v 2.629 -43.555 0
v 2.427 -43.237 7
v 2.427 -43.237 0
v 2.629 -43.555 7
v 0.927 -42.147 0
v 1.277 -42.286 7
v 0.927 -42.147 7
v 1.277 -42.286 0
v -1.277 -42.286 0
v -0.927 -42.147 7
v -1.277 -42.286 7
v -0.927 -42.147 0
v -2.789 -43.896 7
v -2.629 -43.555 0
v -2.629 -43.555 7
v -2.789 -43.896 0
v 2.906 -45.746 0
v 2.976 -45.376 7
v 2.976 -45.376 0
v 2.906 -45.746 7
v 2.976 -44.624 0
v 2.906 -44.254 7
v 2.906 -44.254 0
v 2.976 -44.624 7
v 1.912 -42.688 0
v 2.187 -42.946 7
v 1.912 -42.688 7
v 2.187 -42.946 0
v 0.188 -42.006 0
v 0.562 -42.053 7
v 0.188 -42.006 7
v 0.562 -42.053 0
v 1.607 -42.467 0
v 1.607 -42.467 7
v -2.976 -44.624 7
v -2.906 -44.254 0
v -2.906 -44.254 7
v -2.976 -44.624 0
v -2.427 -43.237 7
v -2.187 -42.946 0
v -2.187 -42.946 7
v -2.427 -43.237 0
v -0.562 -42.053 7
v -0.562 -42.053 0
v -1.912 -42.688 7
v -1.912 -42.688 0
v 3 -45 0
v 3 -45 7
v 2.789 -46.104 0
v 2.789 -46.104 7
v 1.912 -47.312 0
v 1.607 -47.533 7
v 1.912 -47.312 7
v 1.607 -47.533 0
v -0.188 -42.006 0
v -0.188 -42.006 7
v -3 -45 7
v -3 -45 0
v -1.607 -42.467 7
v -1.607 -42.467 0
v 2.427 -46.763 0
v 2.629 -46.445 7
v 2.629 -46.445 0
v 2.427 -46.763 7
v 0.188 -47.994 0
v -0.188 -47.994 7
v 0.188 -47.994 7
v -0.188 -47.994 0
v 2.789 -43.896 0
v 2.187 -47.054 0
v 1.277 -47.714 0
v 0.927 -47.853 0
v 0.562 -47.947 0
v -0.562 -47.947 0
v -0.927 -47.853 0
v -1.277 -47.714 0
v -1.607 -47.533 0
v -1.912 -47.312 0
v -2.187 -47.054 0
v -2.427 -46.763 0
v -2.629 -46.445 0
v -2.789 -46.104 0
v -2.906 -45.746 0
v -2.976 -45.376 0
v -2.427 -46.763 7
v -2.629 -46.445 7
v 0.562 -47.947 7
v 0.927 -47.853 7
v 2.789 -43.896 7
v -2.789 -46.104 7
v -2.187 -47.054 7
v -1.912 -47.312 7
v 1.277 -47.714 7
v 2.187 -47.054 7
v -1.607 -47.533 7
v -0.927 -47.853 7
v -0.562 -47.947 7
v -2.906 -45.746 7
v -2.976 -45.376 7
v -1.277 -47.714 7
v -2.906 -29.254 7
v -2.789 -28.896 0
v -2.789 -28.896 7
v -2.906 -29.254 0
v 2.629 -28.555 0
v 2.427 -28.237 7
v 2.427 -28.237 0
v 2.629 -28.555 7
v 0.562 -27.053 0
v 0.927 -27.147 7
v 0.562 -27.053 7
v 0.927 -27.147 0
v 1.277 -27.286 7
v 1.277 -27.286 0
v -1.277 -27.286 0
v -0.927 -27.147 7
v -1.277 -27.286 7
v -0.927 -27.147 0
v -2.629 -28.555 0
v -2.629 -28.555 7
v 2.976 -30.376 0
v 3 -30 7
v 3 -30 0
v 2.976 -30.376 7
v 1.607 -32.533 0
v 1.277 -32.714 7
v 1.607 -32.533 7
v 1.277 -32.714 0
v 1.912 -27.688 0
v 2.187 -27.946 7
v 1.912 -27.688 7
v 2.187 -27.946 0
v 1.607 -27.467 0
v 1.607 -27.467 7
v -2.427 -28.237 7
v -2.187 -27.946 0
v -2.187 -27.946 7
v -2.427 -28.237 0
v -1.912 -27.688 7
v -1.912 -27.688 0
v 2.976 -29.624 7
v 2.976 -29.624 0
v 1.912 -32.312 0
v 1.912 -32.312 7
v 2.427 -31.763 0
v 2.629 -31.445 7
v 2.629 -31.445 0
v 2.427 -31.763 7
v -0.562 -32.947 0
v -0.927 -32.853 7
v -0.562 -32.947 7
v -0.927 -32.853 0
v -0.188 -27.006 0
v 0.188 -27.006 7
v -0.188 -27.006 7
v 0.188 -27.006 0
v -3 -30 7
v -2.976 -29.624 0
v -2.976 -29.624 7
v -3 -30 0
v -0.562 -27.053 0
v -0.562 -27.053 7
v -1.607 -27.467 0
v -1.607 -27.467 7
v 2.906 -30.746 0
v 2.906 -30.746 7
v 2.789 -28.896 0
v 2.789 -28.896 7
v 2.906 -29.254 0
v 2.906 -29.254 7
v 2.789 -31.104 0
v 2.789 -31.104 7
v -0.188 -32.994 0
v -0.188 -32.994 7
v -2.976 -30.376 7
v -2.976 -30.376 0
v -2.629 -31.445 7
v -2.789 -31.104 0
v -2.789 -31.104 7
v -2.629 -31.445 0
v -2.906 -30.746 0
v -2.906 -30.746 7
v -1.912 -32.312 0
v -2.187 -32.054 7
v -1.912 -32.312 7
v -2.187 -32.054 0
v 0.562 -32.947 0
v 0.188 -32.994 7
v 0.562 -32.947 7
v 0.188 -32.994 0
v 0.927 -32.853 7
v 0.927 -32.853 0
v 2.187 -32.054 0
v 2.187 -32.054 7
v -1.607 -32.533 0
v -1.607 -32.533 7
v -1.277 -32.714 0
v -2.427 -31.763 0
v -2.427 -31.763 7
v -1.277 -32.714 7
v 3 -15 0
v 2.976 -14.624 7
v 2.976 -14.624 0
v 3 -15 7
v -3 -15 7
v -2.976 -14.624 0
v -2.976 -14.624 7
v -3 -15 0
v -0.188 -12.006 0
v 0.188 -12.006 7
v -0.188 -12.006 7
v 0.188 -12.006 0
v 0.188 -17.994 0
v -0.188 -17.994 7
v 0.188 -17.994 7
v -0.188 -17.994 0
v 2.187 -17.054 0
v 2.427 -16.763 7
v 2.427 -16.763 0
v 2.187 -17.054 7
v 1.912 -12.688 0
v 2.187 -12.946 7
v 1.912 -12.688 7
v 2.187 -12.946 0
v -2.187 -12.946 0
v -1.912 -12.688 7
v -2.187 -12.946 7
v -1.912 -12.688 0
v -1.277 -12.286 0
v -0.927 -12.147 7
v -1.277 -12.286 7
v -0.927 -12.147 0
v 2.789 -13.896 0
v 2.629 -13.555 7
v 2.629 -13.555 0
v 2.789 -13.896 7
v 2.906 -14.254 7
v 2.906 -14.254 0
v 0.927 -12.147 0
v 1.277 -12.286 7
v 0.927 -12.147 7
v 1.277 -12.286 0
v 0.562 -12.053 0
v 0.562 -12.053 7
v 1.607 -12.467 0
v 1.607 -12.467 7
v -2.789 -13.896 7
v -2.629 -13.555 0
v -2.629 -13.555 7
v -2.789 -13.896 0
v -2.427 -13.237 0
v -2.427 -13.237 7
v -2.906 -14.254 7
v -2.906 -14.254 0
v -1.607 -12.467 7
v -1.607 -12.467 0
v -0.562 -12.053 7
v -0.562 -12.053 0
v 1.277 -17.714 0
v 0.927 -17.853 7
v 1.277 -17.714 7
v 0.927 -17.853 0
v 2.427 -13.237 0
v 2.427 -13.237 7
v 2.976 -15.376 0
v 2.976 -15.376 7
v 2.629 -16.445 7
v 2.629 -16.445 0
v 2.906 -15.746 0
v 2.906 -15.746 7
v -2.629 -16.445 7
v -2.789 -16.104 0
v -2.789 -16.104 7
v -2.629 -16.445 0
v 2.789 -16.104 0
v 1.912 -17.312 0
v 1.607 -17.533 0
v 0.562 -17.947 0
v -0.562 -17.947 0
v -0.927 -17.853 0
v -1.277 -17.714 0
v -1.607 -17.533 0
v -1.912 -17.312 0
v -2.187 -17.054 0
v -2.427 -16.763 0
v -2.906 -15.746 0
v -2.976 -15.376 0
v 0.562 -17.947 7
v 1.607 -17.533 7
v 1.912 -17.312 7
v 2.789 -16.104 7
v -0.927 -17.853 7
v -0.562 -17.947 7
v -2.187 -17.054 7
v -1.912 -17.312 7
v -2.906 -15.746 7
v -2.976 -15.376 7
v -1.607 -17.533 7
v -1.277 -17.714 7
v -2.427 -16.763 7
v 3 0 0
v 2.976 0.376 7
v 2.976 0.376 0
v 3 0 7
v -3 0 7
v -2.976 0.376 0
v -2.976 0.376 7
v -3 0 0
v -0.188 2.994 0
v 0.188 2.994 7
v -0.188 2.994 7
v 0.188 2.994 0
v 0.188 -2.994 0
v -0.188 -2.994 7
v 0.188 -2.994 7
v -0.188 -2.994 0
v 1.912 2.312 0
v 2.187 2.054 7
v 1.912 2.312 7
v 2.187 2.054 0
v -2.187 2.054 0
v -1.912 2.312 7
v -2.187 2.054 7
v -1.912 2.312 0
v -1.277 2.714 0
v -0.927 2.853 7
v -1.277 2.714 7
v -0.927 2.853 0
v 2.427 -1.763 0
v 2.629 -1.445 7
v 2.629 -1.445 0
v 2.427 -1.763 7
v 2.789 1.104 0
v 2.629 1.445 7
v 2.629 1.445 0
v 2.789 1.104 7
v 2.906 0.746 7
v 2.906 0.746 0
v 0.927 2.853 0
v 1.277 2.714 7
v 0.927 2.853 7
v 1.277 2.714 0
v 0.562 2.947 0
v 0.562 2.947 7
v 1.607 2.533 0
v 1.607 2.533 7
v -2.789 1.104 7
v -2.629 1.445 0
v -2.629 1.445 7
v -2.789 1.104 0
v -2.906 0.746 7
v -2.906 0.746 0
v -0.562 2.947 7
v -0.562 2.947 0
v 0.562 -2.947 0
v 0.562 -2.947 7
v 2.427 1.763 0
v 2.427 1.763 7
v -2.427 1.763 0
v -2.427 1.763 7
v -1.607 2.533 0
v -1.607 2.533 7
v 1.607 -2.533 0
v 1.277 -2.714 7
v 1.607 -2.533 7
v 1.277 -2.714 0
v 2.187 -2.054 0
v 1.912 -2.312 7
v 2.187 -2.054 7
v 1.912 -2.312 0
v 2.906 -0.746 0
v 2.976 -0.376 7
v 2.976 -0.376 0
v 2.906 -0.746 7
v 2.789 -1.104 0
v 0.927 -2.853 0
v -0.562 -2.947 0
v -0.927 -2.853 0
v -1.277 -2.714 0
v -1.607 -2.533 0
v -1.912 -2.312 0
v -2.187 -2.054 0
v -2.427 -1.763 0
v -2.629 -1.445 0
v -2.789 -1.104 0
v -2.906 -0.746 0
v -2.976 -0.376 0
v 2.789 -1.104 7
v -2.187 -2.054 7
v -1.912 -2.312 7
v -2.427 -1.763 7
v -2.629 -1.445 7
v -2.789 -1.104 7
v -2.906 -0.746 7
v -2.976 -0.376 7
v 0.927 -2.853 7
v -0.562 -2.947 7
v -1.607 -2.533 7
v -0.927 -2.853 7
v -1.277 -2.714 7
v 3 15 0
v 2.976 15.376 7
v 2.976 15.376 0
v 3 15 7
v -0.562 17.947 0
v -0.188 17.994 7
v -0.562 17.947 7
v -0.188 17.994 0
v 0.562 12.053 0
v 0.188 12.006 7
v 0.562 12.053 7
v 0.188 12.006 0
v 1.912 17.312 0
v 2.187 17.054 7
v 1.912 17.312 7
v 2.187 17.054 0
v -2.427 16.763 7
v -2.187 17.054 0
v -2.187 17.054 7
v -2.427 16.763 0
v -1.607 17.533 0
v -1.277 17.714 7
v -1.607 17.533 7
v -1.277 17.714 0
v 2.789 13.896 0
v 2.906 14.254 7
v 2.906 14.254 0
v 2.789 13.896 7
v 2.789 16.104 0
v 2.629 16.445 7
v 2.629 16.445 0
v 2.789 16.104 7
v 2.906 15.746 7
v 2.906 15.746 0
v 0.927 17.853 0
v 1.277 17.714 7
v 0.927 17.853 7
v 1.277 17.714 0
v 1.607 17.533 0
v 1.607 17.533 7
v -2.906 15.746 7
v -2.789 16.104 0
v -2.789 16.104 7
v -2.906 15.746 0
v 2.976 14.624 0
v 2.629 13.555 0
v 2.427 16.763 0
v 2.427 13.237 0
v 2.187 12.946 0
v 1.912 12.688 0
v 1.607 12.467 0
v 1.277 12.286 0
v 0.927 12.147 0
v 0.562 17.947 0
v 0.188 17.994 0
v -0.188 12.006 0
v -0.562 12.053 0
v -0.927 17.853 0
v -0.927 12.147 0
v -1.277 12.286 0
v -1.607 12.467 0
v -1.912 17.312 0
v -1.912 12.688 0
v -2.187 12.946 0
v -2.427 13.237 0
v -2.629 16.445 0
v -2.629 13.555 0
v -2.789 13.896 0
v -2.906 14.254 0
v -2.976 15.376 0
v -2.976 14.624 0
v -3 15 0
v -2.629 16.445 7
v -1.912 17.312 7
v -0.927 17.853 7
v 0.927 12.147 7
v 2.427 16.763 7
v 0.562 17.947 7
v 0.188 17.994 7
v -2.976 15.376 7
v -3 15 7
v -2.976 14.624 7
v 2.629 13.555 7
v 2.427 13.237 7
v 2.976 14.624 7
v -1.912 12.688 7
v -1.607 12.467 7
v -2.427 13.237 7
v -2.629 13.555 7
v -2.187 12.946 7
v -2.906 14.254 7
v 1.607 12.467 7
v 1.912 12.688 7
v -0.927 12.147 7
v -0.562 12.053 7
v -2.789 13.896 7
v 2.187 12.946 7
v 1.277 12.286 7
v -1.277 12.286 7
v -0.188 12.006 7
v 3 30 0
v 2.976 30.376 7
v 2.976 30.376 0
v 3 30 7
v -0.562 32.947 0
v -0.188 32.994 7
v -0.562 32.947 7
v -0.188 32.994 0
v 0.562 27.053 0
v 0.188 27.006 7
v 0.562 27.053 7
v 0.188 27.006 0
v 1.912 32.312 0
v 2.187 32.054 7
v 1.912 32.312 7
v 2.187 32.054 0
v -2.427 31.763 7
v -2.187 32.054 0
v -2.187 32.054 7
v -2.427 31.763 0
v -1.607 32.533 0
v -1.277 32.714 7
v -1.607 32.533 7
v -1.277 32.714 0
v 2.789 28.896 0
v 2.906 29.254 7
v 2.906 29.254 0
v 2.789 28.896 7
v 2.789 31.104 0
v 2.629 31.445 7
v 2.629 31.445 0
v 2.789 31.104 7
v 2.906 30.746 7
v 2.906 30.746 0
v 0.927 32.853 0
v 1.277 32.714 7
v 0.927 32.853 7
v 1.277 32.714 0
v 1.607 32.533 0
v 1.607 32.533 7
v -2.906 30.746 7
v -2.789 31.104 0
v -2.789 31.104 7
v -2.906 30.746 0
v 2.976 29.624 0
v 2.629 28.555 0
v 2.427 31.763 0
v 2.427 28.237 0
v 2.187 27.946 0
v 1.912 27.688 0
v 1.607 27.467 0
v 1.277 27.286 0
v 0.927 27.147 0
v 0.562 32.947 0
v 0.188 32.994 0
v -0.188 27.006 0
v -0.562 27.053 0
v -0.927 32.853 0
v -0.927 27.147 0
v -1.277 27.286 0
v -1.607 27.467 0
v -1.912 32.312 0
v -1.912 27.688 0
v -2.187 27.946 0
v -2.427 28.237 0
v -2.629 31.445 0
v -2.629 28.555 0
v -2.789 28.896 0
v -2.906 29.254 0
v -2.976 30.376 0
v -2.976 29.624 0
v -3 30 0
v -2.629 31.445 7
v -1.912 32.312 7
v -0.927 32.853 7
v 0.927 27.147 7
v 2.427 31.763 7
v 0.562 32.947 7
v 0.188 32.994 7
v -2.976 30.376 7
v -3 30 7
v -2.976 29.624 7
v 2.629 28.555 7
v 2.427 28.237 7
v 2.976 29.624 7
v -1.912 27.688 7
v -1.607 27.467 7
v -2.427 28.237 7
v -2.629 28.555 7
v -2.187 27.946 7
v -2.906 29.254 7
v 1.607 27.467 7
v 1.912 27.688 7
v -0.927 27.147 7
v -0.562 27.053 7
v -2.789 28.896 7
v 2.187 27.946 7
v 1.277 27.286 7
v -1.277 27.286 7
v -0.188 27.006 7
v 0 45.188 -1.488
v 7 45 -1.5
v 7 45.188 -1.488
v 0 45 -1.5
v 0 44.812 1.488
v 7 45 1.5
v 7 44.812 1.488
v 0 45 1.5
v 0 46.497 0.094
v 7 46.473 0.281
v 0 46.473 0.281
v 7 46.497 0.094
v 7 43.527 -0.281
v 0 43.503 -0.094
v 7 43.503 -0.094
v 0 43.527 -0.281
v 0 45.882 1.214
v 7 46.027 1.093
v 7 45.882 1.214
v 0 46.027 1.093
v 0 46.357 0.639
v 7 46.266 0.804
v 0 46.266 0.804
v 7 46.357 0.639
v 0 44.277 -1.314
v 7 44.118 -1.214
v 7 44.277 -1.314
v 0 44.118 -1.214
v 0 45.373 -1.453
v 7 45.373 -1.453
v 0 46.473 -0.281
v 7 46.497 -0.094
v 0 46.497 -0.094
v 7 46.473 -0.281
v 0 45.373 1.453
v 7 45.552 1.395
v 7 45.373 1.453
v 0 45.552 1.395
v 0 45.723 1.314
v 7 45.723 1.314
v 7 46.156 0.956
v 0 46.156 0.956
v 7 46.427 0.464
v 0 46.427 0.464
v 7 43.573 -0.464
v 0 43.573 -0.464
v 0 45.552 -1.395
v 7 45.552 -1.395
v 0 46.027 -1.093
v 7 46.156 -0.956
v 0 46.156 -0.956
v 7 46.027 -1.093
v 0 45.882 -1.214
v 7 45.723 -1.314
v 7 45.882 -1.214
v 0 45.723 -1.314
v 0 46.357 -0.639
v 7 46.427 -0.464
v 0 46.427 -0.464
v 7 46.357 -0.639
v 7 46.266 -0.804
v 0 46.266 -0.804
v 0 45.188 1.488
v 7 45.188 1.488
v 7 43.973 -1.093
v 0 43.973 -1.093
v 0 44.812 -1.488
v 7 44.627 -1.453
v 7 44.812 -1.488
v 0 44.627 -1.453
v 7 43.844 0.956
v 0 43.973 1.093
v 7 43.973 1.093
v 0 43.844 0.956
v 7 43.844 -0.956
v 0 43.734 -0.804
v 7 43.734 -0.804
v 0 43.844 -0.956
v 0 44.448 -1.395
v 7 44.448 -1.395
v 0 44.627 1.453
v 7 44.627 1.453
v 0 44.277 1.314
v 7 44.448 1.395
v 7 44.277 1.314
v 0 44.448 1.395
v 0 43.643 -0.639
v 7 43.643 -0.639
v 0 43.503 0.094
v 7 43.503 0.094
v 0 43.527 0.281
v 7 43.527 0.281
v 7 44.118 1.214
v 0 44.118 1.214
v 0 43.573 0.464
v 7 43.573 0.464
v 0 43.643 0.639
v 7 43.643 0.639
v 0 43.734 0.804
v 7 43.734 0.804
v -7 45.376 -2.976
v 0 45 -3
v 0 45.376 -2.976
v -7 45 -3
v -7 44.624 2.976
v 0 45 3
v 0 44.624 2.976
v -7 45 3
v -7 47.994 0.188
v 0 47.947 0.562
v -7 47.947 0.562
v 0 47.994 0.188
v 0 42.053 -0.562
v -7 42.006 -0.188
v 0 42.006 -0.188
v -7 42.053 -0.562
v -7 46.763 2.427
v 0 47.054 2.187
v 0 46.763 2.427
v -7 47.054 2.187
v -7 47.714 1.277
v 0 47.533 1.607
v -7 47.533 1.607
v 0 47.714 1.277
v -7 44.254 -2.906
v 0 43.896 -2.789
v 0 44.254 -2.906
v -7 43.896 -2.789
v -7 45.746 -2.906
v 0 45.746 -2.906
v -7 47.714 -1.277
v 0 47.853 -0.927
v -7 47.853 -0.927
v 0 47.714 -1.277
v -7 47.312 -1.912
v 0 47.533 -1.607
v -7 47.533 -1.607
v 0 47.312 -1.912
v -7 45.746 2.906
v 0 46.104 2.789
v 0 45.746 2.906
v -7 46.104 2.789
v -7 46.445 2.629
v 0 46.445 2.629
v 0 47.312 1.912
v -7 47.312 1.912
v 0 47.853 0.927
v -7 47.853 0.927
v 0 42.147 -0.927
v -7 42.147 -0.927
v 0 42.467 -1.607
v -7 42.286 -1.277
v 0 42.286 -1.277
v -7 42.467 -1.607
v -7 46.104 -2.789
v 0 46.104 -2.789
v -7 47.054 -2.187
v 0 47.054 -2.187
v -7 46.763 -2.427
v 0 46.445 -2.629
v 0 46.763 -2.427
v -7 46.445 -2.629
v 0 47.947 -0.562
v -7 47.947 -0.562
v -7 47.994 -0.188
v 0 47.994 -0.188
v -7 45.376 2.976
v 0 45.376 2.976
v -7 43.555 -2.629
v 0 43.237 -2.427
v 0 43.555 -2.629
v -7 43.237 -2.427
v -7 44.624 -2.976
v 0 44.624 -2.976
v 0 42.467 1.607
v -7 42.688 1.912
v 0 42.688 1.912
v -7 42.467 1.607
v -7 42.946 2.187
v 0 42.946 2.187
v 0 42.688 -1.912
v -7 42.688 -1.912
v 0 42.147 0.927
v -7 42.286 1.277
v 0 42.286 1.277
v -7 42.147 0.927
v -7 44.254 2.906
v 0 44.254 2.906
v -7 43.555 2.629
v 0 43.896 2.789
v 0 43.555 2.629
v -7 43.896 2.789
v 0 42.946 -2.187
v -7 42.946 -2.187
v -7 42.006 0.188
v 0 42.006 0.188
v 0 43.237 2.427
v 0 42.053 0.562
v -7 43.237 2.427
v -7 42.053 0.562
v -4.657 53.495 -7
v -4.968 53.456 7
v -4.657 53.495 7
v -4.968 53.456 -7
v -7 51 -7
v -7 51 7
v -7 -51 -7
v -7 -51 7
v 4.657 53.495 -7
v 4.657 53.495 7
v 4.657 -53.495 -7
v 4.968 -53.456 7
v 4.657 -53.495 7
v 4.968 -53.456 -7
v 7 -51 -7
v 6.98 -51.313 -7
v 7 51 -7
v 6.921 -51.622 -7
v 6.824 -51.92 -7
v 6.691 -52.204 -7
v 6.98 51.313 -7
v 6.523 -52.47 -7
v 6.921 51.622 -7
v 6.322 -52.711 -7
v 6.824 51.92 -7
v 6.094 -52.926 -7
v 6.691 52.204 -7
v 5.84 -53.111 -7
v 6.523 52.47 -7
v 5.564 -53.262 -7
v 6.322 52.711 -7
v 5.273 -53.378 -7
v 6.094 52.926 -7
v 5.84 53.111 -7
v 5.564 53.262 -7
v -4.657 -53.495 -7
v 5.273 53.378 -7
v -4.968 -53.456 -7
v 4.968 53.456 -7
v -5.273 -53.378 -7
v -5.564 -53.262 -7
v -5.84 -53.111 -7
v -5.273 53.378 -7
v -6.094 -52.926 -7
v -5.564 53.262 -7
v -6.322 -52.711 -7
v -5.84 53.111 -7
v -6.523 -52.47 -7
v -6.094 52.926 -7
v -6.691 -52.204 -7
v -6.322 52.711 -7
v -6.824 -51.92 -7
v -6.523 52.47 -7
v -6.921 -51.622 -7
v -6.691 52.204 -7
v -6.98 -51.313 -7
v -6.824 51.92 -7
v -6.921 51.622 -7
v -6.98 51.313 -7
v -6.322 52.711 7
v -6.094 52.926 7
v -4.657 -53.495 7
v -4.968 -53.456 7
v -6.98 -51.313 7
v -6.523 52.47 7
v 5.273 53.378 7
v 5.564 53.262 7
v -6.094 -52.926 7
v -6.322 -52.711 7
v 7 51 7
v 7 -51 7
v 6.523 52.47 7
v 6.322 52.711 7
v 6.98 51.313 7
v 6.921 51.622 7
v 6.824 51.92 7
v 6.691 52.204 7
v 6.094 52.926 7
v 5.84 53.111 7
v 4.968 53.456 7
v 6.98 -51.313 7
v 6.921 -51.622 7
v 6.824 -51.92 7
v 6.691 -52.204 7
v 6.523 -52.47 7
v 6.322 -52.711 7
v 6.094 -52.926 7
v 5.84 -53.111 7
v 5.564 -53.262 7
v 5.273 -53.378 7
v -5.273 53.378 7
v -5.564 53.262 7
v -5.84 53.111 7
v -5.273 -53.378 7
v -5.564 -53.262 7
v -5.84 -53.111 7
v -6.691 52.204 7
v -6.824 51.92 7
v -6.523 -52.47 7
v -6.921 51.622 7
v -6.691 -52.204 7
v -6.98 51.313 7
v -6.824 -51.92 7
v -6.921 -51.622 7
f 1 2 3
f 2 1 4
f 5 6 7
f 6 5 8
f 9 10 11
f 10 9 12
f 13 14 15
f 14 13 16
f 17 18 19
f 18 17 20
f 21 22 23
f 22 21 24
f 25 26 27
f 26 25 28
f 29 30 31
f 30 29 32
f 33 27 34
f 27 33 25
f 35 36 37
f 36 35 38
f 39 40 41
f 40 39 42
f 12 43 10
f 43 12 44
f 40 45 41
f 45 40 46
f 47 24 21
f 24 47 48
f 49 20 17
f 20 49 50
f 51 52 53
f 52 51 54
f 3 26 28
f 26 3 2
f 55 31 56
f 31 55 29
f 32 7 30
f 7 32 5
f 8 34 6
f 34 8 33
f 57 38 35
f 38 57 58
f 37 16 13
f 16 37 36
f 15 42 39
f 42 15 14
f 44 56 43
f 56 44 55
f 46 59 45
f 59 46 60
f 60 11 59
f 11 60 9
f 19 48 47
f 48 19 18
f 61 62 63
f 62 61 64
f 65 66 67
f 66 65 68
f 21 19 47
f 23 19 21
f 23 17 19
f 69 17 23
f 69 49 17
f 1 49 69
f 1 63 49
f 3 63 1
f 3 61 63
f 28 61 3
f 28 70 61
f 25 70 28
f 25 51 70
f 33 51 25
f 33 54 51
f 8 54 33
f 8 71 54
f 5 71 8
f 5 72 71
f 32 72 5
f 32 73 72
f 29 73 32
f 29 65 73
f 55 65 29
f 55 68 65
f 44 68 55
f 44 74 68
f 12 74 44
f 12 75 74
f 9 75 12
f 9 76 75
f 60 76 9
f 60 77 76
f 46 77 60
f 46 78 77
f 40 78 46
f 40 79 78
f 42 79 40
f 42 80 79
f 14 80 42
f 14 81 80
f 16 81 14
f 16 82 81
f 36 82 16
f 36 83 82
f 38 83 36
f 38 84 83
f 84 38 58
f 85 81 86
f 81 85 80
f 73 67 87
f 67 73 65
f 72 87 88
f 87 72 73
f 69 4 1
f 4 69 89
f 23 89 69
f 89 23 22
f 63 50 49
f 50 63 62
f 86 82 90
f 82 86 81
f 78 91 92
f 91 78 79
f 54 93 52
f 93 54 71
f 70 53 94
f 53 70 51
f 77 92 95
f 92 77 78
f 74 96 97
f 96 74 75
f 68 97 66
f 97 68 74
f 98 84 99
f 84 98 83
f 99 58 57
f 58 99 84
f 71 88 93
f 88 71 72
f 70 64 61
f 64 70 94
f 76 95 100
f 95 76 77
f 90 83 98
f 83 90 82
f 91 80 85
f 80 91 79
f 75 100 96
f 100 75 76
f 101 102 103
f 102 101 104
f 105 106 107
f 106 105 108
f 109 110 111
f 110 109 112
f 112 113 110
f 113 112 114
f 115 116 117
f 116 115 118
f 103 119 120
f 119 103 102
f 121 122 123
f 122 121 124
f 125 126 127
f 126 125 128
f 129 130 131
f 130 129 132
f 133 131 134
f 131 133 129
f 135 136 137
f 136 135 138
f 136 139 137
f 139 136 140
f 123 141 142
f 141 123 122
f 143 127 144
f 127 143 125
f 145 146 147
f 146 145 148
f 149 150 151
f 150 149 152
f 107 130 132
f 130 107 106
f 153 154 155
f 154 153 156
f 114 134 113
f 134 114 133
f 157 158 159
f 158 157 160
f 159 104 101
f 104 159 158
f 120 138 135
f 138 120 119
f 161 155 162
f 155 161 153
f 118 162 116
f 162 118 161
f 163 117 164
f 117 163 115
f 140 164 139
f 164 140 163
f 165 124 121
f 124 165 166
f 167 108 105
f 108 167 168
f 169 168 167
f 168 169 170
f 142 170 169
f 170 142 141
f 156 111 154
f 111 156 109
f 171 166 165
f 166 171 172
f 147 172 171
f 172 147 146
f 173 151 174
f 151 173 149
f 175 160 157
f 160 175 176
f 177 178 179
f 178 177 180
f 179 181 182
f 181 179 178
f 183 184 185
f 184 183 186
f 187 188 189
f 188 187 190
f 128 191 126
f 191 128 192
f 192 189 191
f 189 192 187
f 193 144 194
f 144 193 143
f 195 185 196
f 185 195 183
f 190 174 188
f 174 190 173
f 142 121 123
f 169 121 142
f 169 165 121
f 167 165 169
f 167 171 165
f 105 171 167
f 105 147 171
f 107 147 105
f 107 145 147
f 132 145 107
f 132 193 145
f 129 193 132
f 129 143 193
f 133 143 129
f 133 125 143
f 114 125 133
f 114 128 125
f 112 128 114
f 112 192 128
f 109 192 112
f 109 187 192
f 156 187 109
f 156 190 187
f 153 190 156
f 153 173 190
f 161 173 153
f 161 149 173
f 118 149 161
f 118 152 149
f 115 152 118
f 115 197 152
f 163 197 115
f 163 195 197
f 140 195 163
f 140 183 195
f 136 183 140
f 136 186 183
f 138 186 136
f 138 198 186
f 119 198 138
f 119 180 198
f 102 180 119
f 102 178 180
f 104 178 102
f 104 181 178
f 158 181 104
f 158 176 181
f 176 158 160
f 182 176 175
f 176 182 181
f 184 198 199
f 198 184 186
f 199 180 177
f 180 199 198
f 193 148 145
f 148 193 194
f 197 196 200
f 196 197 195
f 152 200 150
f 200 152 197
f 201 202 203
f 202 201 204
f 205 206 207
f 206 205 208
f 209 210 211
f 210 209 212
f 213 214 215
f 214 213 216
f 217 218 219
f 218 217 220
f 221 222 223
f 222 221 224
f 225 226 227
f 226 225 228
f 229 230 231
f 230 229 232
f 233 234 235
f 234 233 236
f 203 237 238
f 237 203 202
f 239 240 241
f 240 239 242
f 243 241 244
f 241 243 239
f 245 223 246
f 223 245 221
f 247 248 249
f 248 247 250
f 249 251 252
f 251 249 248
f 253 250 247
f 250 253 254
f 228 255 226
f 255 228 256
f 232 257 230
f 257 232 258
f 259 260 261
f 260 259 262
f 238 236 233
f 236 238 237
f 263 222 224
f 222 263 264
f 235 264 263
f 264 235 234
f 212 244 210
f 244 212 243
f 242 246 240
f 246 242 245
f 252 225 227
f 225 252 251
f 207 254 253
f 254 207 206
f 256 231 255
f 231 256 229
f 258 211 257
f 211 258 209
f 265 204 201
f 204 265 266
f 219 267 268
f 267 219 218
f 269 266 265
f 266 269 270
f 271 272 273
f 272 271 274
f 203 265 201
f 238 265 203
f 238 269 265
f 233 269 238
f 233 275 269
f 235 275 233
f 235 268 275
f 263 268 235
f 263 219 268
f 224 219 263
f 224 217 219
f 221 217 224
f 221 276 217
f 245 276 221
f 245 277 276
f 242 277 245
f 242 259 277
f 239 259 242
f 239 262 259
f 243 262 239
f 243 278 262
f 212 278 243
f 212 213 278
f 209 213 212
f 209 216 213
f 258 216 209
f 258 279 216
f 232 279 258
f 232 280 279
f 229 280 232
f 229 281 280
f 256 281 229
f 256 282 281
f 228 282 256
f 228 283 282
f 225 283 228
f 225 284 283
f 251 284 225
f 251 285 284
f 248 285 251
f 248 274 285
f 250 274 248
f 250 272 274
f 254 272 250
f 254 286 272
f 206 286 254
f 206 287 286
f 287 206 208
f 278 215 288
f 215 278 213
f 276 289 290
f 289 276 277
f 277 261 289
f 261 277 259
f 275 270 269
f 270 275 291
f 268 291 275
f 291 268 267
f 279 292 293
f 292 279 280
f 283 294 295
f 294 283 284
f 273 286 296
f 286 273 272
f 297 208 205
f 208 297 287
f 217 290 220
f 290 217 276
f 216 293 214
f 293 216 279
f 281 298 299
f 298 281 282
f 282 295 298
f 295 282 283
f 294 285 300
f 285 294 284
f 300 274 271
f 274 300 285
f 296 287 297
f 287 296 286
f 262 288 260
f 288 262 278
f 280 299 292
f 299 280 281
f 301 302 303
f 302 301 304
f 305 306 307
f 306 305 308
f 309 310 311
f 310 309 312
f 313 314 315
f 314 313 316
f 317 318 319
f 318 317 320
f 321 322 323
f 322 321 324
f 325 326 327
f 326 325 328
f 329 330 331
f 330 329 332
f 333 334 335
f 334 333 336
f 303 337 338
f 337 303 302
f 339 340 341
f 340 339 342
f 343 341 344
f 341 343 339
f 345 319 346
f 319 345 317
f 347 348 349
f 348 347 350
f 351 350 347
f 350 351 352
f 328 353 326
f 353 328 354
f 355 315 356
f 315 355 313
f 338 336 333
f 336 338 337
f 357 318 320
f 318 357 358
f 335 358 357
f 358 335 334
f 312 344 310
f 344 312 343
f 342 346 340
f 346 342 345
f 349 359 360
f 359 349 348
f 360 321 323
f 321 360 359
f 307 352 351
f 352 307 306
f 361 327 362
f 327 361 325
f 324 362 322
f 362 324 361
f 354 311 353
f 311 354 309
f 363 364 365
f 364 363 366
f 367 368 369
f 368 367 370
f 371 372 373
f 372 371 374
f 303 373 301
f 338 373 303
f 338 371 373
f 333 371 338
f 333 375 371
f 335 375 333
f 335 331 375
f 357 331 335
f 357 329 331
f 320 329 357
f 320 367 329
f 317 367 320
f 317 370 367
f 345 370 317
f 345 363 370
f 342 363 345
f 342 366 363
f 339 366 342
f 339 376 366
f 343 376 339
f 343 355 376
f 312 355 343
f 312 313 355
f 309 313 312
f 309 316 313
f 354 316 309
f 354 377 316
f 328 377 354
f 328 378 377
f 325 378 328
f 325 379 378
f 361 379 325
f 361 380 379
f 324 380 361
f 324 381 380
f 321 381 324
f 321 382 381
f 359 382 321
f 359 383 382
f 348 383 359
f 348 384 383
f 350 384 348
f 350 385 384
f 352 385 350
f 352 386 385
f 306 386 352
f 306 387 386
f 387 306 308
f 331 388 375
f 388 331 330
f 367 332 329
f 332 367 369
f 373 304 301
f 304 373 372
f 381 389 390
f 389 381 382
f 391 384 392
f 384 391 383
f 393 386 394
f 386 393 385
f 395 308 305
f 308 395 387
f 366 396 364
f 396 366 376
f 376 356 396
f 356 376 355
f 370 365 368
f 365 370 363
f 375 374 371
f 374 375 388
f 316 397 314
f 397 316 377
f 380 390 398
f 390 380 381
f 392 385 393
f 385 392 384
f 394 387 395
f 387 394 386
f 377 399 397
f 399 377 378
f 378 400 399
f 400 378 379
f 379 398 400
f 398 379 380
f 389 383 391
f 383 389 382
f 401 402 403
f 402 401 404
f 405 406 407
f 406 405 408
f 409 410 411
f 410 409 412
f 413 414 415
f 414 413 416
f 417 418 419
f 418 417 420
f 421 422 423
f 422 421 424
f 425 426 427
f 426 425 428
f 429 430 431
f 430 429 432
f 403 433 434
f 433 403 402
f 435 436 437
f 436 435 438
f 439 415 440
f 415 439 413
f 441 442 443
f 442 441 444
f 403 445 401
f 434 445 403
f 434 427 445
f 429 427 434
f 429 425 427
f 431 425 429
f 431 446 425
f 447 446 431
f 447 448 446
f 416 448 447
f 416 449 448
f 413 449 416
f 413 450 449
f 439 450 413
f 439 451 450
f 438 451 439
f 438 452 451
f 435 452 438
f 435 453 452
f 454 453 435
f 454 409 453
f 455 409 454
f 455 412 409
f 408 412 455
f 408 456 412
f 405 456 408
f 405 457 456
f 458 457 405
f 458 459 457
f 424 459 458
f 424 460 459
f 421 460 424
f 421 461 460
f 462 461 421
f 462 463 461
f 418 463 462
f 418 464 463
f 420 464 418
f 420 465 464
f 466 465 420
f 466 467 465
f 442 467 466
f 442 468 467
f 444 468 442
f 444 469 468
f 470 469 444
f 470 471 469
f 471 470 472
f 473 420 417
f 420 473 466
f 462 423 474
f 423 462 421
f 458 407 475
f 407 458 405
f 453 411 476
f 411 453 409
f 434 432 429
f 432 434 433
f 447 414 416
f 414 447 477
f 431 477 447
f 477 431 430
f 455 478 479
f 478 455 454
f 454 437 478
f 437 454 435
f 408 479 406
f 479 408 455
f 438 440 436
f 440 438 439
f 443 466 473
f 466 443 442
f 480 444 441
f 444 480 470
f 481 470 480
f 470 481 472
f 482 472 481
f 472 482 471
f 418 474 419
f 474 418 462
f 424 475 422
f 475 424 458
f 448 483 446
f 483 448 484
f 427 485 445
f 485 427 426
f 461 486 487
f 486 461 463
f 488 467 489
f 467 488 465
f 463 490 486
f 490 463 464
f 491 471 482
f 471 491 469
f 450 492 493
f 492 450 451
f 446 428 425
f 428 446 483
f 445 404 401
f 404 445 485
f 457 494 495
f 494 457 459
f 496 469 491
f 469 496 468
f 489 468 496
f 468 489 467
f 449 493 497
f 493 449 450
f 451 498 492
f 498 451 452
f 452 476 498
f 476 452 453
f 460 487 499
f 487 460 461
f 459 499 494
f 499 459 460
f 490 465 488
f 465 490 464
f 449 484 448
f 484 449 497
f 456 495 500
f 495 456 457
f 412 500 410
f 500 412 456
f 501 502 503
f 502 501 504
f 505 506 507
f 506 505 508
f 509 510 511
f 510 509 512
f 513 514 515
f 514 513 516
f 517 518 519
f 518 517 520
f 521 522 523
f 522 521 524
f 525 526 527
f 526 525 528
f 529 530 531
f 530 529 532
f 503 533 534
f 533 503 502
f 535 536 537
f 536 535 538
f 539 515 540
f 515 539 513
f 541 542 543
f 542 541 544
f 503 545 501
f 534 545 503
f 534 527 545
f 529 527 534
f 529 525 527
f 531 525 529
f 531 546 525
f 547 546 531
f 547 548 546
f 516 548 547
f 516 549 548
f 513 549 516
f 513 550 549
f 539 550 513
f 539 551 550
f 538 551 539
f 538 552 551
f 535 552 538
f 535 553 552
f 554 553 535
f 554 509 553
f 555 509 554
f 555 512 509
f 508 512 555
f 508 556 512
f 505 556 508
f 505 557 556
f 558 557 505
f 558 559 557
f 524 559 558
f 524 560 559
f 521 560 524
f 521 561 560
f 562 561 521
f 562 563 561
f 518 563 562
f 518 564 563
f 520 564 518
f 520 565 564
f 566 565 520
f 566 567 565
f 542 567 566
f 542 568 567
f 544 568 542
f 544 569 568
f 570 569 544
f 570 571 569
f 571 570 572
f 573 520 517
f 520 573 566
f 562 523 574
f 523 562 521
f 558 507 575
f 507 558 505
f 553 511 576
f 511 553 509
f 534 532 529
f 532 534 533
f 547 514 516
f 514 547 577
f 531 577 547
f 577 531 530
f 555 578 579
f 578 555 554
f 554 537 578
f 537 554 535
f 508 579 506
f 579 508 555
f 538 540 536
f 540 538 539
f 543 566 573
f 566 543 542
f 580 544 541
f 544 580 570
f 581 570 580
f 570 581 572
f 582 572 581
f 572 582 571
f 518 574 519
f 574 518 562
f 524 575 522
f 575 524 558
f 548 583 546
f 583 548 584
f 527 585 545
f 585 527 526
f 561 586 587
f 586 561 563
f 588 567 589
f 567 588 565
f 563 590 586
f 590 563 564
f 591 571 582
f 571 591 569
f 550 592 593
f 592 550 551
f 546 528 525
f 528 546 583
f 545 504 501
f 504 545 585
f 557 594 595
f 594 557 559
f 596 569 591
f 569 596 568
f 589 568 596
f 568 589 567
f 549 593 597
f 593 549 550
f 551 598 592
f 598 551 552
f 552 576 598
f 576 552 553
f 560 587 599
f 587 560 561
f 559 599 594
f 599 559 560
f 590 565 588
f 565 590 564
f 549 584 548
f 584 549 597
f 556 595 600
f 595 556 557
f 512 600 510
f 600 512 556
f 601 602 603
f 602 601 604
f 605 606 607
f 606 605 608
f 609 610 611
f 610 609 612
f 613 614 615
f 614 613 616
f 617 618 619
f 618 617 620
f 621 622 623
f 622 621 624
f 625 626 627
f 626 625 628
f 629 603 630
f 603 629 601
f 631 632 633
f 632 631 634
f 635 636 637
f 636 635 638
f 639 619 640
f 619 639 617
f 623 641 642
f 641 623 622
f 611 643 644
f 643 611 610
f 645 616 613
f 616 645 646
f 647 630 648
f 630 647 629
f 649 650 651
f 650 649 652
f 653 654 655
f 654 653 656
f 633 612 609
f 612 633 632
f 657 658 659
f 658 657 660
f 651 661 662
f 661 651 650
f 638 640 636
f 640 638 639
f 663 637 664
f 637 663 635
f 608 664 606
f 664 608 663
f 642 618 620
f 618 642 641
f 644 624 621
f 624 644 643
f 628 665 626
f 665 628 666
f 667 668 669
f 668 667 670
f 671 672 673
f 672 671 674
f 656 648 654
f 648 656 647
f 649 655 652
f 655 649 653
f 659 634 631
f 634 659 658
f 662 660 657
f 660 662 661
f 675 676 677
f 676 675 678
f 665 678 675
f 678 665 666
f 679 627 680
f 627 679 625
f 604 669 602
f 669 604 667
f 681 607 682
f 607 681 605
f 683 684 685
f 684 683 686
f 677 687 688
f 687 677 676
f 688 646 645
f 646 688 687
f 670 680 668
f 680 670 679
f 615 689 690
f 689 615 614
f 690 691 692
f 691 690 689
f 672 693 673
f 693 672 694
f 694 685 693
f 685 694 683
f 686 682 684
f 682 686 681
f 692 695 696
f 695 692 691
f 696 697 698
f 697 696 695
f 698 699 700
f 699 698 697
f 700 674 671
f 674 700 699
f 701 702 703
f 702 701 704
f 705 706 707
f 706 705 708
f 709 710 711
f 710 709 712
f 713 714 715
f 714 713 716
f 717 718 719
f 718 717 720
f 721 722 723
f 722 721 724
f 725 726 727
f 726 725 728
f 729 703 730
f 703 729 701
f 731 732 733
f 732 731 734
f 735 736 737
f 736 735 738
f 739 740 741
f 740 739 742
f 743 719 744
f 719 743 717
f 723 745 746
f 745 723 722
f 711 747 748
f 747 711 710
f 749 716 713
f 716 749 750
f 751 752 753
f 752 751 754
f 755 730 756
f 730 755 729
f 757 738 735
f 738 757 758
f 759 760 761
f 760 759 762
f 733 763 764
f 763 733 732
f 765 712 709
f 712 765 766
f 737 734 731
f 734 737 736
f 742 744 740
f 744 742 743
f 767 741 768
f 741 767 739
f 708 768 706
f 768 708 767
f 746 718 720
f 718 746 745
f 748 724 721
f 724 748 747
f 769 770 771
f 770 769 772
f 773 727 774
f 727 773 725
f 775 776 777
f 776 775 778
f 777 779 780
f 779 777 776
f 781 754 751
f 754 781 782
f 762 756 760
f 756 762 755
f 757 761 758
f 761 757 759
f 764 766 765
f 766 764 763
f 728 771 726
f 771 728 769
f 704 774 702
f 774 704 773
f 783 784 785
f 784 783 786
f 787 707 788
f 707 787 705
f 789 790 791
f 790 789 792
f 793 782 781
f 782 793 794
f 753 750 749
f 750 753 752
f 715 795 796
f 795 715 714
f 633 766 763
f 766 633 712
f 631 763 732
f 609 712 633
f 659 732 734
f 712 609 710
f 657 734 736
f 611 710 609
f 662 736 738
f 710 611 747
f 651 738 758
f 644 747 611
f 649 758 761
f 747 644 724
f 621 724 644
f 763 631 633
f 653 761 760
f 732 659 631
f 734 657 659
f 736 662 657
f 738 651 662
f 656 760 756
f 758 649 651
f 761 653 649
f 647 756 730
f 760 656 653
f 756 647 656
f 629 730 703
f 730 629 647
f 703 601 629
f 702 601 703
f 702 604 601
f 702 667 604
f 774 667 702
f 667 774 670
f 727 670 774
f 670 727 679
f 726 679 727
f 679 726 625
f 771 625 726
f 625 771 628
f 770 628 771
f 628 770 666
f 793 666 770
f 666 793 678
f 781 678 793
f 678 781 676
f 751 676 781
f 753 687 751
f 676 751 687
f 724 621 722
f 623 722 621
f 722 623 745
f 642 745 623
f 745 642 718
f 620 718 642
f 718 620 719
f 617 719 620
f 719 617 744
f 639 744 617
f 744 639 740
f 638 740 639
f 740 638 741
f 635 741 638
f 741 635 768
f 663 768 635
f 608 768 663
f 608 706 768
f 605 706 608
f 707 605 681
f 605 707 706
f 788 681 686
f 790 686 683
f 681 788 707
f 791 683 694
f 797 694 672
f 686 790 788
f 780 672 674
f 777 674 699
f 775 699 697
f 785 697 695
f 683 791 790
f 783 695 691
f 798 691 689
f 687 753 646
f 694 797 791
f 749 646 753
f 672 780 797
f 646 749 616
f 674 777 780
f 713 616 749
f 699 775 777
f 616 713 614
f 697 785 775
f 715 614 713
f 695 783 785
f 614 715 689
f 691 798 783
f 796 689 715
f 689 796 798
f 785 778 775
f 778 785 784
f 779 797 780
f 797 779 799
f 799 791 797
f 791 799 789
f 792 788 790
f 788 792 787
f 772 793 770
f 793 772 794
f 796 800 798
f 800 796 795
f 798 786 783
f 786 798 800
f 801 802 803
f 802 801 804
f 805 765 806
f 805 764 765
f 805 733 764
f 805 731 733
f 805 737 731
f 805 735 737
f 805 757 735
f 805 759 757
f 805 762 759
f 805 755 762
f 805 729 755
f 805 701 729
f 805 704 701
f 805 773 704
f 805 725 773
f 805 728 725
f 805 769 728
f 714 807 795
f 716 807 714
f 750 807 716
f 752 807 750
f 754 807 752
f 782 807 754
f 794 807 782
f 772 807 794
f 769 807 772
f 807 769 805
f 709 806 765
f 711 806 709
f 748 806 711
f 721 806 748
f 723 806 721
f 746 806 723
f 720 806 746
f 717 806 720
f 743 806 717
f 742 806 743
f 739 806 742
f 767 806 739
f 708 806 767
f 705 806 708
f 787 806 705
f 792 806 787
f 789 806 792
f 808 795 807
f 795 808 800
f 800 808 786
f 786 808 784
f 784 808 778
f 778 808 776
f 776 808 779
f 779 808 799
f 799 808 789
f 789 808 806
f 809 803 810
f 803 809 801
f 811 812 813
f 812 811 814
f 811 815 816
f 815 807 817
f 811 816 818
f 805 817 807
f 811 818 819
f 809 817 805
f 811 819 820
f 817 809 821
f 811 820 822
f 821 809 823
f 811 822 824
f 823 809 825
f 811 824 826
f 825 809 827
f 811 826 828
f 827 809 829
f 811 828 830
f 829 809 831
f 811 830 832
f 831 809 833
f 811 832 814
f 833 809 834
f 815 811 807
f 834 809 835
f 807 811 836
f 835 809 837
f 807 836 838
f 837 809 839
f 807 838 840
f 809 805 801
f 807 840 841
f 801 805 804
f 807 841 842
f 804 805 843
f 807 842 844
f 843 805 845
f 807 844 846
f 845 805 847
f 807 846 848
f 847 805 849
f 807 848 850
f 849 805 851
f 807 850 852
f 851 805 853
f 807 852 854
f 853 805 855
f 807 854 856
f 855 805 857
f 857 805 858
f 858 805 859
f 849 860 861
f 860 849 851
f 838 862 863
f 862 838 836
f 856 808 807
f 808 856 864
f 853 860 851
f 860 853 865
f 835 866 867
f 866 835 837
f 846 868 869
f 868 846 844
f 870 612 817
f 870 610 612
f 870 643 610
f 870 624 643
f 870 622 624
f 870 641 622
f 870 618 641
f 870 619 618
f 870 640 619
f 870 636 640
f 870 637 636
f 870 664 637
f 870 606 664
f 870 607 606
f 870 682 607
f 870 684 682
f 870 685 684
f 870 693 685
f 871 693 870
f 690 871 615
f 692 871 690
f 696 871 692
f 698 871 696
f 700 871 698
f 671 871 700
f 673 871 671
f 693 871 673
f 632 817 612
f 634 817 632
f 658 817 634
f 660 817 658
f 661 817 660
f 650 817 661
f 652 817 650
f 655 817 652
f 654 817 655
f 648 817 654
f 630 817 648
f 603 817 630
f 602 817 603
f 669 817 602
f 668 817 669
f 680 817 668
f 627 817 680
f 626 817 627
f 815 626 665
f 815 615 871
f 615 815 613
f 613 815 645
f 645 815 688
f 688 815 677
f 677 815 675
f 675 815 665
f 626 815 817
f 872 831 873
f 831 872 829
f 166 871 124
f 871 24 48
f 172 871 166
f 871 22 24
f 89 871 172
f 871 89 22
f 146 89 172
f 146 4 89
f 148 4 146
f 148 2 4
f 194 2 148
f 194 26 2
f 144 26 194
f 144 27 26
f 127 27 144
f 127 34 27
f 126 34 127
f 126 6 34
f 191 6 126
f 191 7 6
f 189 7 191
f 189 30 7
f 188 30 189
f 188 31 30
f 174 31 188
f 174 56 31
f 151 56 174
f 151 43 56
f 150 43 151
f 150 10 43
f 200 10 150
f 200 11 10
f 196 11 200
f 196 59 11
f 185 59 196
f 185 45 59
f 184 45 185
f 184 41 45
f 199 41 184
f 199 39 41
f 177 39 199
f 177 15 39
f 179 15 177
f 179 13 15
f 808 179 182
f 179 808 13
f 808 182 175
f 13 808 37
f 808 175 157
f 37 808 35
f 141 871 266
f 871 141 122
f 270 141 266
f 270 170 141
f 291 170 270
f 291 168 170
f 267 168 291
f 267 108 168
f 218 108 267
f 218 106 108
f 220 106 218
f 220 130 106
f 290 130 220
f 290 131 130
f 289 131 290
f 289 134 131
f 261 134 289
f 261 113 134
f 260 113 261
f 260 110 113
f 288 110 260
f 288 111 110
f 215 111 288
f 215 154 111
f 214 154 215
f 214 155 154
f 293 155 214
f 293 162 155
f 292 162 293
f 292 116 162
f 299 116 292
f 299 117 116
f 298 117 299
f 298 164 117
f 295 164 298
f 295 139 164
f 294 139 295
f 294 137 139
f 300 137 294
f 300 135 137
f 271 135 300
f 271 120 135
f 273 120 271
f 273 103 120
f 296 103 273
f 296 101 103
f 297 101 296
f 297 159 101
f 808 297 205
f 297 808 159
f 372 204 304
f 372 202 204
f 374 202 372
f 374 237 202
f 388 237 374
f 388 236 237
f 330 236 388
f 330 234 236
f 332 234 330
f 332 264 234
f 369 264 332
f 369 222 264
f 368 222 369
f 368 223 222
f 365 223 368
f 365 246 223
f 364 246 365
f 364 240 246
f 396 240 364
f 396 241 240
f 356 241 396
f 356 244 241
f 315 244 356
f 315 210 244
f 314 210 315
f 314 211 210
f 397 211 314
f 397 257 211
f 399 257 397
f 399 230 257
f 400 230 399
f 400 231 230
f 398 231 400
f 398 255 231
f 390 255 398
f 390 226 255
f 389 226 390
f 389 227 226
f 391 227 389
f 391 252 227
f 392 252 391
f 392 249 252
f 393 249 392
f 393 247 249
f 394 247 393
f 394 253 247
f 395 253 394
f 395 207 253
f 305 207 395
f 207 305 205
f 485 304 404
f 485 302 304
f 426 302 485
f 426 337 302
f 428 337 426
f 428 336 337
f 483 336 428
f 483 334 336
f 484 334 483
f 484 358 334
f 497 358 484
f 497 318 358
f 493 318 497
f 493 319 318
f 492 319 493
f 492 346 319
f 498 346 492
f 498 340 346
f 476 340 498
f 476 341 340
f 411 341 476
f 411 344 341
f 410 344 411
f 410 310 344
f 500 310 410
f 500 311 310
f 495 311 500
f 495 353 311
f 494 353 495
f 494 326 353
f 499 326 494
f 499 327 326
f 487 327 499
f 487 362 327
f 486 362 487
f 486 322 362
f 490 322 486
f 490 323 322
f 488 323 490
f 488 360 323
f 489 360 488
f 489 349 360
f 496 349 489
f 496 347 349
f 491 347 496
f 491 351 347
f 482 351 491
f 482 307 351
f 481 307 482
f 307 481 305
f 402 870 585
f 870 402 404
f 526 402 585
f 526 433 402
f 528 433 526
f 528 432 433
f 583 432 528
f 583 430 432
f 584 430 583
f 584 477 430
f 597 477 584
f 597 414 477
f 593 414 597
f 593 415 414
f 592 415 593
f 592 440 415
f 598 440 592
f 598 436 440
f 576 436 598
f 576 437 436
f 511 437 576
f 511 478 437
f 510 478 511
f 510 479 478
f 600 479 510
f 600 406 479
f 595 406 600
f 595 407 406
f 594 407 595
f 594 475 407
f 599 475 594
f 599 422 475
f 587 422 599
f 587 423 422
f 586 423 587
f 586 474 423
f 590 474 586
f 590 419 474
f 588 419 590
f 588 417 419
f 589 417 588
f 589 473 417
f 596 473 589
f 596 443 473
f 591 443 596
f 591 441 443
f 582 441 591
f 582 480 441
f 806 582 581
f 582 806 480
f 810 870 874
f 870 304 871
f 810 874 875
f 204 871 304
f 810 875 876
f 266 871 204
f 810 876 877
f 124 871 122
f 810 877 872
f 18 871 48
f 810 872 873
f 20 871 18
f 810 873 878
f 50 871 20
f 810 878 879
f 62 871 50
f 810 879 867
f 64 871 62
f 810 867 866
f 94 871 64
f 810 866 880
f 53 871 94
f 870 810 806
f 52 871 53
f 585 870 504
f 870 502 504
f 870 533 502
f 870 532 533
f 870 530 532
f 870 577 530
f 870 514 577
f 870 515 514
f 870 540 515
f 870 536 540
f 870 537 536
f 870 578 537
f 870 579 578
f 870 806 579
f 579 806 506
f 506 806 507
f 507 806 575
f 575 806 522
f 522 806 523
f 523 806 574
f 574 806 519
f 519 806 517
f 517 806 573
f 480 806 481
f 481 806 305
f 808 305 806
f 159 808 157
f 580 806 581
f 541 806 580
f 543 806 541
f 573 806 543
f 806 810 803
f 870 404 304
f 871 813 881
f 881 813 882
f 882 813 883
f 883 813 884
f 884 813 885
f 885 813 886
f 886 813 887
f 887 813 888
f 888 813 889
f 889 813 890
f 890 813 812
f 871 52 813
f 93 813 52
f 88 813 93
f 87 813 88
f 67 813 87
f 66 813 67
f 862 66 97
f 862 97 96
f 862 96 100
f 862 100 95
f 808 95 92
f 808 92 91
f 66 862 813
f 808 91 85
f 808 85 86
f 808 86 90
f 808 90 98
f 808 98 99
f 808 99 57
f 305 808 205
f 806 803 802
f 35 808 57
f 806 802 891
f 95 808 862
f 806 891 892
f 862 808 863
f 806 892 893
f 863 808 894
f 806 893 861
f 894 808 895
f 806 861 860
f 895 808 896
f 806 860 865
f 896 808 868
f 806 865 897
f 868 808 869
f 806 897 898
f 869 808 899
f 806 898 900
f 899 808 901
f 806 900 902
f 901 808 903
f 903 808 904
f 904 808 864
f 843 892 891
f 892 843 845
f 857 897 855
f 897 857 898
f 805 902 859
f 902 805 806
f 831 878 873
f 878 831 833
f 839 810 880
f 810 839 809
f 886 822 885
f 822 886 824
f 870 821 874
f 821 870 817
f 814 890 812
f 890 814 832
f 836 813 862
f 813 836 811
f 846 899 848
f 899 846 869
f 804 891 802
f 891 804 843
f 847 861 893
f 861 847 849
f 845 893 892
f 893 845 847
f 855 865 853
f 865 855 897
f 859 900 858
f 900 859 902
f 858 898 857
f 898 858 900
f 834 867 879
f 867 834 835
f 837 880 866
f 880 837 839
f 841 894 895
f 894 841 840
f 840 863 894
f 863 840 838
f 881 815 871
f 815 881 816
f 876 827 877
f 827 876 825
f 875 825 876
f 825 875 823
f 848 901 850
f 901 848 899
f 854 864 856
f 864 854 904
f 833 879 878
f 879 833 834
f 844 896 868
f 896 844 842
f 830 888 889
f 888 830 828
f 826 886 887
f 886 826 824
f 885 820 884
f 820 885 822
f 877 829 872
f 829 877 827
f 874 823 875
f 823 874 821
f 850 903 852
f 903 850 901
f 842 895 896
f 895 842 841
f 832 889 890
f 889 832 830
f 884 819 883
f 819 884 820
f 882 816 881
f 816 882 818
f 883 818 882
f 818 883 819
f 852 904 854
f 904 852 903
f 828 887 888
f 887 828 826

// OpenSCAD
$fn = 50;


difference() {
	union() {
		translate(v = [0, 0, -7.0000000000]) {
			hull() {
				translate(v = [-4.5000000000, 51.0000000000, 0]) {
					cylinder(h = 14, r = 2.5000000000);
				}
				translate(v = [4.5000000000, 51.0000000000, 0]) {
					cylinder(h = 14, r = 2.5000000000);
				}
				translate(v = [-4.5000000000, -51.0000000000, 0]) {
					cylinder(h = 14, r = 2.5000000000);
				}
				translate(v = [4.5000000000, -51.0000000000, 0]) {
					cylinder(h = 14, r = 2.5000000000);
				}
			}
		}
	}
	union() {
		translate(v = [0.0000000000, -45.0000000000, 0]) {
			cylinder(h = 100, r = 3.0000000000);
		}
		translate(v = [0.0000000000, -30.0000000000, 0]) {
			cylinder(h = 100, r = 3.0000000000);
		}
		translate(v = [0.0000000000, -15.0000000000, 0]) {
			cylinder(h = 100, r = 3.0000000000);
		}
		cylinder(h = 100, r = 3.0000000000);
		translate(v = [0.0000000000, 15.0000000000, 0]) {
			cylinder(h = 100, r = 3.0000000000);
		}
		translate(v = [0.0000000000, 30.0000000000, 0]) {
			cylinder(h = 100, r = 3.0000000000);
		}
		translate(v = [-50, 45, 0]) {
			rotate(a = [0, 90, 0]) {
				cylinder(h = 100, r = 1.5000000000);
			}
		}
		translate(v = [-100, 45, 0]) {
			rotate(a = [0, 90, 0]) {
				cylinder(h = 100, r = 3.0000000000);
			}
		}
	}
}
